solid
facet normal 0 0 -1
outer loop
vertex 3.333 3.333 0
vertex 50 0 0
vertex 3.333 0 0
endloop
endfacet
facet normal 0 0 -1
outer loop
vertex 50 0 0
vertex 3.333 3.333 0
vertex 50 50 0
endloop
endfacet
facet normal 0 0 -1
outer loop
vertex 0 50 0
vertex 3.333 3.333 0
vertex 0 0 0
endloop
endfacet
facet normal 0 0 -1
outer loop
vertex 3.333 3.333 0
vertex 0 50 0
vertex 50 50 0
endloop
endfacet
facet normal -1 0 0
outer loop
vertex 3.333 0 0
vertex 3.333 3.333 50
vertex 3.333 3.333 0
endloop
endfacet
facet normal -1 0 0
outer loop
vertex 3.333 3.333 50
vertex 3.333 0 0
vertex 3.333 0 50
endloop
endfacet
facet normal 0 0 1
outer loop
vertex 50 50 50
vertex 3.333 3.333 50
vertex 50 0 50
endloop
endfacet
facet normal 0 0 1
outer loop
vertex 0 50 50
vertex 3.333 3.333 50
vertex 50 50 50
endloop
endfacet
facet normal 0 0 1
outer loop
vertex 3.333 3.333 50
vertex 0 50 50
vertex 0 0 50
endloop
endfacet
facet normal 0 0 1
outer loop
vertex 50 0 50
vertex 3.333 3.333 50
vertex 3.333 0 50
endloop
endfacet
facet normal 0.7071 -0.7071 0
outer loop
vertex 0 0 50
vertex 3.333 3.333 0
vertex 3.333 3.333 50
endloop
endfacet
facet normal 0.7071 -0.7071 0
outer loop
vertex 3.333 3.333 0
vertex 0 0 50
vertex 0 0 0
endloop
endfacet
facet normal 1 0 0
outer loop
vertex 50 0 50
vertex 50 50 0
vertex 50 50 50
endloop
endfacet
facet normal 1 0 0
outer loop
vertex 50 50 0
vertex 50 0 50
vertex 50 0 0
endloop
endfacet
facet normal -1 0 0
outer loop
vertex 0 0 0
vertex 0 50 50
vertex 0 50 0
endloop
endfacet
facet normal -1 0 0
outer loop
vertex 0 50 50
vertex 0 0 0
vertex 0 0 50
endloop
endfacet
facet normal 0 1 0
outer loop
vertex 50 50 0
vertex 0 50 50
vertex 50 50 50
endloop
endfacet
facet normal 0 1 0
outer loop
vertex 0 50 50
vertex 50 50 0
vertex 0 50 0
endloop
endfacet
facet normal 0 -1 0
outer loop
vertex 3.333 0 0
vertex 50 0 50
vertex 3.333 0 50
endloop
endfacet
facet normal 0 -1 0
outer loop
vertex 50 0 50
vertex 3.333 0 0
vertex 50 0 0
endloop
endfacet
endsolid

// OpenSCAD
// Wrinkled Cube

module wrinkled_cube(size, wrinkles = 10) {
  difference() {
    cube([size, size, size]);
    
    for (i = [0:wrinkles-1]) {
      translate([i * (size + size/wrinkles), i * (size + size/wrinkles), i * (size + size/wrinkles)]) {
        linear_extrude(height = size) {
          polygon([
            [0, 0],
            [size/wrinkles, size/wrinkles],
            [size/wrinkles, -size/wrinkles]
          ]);
        }
      }
    }
  }
}

wrinkled_cube(size = 50, wrinkles = 15);
